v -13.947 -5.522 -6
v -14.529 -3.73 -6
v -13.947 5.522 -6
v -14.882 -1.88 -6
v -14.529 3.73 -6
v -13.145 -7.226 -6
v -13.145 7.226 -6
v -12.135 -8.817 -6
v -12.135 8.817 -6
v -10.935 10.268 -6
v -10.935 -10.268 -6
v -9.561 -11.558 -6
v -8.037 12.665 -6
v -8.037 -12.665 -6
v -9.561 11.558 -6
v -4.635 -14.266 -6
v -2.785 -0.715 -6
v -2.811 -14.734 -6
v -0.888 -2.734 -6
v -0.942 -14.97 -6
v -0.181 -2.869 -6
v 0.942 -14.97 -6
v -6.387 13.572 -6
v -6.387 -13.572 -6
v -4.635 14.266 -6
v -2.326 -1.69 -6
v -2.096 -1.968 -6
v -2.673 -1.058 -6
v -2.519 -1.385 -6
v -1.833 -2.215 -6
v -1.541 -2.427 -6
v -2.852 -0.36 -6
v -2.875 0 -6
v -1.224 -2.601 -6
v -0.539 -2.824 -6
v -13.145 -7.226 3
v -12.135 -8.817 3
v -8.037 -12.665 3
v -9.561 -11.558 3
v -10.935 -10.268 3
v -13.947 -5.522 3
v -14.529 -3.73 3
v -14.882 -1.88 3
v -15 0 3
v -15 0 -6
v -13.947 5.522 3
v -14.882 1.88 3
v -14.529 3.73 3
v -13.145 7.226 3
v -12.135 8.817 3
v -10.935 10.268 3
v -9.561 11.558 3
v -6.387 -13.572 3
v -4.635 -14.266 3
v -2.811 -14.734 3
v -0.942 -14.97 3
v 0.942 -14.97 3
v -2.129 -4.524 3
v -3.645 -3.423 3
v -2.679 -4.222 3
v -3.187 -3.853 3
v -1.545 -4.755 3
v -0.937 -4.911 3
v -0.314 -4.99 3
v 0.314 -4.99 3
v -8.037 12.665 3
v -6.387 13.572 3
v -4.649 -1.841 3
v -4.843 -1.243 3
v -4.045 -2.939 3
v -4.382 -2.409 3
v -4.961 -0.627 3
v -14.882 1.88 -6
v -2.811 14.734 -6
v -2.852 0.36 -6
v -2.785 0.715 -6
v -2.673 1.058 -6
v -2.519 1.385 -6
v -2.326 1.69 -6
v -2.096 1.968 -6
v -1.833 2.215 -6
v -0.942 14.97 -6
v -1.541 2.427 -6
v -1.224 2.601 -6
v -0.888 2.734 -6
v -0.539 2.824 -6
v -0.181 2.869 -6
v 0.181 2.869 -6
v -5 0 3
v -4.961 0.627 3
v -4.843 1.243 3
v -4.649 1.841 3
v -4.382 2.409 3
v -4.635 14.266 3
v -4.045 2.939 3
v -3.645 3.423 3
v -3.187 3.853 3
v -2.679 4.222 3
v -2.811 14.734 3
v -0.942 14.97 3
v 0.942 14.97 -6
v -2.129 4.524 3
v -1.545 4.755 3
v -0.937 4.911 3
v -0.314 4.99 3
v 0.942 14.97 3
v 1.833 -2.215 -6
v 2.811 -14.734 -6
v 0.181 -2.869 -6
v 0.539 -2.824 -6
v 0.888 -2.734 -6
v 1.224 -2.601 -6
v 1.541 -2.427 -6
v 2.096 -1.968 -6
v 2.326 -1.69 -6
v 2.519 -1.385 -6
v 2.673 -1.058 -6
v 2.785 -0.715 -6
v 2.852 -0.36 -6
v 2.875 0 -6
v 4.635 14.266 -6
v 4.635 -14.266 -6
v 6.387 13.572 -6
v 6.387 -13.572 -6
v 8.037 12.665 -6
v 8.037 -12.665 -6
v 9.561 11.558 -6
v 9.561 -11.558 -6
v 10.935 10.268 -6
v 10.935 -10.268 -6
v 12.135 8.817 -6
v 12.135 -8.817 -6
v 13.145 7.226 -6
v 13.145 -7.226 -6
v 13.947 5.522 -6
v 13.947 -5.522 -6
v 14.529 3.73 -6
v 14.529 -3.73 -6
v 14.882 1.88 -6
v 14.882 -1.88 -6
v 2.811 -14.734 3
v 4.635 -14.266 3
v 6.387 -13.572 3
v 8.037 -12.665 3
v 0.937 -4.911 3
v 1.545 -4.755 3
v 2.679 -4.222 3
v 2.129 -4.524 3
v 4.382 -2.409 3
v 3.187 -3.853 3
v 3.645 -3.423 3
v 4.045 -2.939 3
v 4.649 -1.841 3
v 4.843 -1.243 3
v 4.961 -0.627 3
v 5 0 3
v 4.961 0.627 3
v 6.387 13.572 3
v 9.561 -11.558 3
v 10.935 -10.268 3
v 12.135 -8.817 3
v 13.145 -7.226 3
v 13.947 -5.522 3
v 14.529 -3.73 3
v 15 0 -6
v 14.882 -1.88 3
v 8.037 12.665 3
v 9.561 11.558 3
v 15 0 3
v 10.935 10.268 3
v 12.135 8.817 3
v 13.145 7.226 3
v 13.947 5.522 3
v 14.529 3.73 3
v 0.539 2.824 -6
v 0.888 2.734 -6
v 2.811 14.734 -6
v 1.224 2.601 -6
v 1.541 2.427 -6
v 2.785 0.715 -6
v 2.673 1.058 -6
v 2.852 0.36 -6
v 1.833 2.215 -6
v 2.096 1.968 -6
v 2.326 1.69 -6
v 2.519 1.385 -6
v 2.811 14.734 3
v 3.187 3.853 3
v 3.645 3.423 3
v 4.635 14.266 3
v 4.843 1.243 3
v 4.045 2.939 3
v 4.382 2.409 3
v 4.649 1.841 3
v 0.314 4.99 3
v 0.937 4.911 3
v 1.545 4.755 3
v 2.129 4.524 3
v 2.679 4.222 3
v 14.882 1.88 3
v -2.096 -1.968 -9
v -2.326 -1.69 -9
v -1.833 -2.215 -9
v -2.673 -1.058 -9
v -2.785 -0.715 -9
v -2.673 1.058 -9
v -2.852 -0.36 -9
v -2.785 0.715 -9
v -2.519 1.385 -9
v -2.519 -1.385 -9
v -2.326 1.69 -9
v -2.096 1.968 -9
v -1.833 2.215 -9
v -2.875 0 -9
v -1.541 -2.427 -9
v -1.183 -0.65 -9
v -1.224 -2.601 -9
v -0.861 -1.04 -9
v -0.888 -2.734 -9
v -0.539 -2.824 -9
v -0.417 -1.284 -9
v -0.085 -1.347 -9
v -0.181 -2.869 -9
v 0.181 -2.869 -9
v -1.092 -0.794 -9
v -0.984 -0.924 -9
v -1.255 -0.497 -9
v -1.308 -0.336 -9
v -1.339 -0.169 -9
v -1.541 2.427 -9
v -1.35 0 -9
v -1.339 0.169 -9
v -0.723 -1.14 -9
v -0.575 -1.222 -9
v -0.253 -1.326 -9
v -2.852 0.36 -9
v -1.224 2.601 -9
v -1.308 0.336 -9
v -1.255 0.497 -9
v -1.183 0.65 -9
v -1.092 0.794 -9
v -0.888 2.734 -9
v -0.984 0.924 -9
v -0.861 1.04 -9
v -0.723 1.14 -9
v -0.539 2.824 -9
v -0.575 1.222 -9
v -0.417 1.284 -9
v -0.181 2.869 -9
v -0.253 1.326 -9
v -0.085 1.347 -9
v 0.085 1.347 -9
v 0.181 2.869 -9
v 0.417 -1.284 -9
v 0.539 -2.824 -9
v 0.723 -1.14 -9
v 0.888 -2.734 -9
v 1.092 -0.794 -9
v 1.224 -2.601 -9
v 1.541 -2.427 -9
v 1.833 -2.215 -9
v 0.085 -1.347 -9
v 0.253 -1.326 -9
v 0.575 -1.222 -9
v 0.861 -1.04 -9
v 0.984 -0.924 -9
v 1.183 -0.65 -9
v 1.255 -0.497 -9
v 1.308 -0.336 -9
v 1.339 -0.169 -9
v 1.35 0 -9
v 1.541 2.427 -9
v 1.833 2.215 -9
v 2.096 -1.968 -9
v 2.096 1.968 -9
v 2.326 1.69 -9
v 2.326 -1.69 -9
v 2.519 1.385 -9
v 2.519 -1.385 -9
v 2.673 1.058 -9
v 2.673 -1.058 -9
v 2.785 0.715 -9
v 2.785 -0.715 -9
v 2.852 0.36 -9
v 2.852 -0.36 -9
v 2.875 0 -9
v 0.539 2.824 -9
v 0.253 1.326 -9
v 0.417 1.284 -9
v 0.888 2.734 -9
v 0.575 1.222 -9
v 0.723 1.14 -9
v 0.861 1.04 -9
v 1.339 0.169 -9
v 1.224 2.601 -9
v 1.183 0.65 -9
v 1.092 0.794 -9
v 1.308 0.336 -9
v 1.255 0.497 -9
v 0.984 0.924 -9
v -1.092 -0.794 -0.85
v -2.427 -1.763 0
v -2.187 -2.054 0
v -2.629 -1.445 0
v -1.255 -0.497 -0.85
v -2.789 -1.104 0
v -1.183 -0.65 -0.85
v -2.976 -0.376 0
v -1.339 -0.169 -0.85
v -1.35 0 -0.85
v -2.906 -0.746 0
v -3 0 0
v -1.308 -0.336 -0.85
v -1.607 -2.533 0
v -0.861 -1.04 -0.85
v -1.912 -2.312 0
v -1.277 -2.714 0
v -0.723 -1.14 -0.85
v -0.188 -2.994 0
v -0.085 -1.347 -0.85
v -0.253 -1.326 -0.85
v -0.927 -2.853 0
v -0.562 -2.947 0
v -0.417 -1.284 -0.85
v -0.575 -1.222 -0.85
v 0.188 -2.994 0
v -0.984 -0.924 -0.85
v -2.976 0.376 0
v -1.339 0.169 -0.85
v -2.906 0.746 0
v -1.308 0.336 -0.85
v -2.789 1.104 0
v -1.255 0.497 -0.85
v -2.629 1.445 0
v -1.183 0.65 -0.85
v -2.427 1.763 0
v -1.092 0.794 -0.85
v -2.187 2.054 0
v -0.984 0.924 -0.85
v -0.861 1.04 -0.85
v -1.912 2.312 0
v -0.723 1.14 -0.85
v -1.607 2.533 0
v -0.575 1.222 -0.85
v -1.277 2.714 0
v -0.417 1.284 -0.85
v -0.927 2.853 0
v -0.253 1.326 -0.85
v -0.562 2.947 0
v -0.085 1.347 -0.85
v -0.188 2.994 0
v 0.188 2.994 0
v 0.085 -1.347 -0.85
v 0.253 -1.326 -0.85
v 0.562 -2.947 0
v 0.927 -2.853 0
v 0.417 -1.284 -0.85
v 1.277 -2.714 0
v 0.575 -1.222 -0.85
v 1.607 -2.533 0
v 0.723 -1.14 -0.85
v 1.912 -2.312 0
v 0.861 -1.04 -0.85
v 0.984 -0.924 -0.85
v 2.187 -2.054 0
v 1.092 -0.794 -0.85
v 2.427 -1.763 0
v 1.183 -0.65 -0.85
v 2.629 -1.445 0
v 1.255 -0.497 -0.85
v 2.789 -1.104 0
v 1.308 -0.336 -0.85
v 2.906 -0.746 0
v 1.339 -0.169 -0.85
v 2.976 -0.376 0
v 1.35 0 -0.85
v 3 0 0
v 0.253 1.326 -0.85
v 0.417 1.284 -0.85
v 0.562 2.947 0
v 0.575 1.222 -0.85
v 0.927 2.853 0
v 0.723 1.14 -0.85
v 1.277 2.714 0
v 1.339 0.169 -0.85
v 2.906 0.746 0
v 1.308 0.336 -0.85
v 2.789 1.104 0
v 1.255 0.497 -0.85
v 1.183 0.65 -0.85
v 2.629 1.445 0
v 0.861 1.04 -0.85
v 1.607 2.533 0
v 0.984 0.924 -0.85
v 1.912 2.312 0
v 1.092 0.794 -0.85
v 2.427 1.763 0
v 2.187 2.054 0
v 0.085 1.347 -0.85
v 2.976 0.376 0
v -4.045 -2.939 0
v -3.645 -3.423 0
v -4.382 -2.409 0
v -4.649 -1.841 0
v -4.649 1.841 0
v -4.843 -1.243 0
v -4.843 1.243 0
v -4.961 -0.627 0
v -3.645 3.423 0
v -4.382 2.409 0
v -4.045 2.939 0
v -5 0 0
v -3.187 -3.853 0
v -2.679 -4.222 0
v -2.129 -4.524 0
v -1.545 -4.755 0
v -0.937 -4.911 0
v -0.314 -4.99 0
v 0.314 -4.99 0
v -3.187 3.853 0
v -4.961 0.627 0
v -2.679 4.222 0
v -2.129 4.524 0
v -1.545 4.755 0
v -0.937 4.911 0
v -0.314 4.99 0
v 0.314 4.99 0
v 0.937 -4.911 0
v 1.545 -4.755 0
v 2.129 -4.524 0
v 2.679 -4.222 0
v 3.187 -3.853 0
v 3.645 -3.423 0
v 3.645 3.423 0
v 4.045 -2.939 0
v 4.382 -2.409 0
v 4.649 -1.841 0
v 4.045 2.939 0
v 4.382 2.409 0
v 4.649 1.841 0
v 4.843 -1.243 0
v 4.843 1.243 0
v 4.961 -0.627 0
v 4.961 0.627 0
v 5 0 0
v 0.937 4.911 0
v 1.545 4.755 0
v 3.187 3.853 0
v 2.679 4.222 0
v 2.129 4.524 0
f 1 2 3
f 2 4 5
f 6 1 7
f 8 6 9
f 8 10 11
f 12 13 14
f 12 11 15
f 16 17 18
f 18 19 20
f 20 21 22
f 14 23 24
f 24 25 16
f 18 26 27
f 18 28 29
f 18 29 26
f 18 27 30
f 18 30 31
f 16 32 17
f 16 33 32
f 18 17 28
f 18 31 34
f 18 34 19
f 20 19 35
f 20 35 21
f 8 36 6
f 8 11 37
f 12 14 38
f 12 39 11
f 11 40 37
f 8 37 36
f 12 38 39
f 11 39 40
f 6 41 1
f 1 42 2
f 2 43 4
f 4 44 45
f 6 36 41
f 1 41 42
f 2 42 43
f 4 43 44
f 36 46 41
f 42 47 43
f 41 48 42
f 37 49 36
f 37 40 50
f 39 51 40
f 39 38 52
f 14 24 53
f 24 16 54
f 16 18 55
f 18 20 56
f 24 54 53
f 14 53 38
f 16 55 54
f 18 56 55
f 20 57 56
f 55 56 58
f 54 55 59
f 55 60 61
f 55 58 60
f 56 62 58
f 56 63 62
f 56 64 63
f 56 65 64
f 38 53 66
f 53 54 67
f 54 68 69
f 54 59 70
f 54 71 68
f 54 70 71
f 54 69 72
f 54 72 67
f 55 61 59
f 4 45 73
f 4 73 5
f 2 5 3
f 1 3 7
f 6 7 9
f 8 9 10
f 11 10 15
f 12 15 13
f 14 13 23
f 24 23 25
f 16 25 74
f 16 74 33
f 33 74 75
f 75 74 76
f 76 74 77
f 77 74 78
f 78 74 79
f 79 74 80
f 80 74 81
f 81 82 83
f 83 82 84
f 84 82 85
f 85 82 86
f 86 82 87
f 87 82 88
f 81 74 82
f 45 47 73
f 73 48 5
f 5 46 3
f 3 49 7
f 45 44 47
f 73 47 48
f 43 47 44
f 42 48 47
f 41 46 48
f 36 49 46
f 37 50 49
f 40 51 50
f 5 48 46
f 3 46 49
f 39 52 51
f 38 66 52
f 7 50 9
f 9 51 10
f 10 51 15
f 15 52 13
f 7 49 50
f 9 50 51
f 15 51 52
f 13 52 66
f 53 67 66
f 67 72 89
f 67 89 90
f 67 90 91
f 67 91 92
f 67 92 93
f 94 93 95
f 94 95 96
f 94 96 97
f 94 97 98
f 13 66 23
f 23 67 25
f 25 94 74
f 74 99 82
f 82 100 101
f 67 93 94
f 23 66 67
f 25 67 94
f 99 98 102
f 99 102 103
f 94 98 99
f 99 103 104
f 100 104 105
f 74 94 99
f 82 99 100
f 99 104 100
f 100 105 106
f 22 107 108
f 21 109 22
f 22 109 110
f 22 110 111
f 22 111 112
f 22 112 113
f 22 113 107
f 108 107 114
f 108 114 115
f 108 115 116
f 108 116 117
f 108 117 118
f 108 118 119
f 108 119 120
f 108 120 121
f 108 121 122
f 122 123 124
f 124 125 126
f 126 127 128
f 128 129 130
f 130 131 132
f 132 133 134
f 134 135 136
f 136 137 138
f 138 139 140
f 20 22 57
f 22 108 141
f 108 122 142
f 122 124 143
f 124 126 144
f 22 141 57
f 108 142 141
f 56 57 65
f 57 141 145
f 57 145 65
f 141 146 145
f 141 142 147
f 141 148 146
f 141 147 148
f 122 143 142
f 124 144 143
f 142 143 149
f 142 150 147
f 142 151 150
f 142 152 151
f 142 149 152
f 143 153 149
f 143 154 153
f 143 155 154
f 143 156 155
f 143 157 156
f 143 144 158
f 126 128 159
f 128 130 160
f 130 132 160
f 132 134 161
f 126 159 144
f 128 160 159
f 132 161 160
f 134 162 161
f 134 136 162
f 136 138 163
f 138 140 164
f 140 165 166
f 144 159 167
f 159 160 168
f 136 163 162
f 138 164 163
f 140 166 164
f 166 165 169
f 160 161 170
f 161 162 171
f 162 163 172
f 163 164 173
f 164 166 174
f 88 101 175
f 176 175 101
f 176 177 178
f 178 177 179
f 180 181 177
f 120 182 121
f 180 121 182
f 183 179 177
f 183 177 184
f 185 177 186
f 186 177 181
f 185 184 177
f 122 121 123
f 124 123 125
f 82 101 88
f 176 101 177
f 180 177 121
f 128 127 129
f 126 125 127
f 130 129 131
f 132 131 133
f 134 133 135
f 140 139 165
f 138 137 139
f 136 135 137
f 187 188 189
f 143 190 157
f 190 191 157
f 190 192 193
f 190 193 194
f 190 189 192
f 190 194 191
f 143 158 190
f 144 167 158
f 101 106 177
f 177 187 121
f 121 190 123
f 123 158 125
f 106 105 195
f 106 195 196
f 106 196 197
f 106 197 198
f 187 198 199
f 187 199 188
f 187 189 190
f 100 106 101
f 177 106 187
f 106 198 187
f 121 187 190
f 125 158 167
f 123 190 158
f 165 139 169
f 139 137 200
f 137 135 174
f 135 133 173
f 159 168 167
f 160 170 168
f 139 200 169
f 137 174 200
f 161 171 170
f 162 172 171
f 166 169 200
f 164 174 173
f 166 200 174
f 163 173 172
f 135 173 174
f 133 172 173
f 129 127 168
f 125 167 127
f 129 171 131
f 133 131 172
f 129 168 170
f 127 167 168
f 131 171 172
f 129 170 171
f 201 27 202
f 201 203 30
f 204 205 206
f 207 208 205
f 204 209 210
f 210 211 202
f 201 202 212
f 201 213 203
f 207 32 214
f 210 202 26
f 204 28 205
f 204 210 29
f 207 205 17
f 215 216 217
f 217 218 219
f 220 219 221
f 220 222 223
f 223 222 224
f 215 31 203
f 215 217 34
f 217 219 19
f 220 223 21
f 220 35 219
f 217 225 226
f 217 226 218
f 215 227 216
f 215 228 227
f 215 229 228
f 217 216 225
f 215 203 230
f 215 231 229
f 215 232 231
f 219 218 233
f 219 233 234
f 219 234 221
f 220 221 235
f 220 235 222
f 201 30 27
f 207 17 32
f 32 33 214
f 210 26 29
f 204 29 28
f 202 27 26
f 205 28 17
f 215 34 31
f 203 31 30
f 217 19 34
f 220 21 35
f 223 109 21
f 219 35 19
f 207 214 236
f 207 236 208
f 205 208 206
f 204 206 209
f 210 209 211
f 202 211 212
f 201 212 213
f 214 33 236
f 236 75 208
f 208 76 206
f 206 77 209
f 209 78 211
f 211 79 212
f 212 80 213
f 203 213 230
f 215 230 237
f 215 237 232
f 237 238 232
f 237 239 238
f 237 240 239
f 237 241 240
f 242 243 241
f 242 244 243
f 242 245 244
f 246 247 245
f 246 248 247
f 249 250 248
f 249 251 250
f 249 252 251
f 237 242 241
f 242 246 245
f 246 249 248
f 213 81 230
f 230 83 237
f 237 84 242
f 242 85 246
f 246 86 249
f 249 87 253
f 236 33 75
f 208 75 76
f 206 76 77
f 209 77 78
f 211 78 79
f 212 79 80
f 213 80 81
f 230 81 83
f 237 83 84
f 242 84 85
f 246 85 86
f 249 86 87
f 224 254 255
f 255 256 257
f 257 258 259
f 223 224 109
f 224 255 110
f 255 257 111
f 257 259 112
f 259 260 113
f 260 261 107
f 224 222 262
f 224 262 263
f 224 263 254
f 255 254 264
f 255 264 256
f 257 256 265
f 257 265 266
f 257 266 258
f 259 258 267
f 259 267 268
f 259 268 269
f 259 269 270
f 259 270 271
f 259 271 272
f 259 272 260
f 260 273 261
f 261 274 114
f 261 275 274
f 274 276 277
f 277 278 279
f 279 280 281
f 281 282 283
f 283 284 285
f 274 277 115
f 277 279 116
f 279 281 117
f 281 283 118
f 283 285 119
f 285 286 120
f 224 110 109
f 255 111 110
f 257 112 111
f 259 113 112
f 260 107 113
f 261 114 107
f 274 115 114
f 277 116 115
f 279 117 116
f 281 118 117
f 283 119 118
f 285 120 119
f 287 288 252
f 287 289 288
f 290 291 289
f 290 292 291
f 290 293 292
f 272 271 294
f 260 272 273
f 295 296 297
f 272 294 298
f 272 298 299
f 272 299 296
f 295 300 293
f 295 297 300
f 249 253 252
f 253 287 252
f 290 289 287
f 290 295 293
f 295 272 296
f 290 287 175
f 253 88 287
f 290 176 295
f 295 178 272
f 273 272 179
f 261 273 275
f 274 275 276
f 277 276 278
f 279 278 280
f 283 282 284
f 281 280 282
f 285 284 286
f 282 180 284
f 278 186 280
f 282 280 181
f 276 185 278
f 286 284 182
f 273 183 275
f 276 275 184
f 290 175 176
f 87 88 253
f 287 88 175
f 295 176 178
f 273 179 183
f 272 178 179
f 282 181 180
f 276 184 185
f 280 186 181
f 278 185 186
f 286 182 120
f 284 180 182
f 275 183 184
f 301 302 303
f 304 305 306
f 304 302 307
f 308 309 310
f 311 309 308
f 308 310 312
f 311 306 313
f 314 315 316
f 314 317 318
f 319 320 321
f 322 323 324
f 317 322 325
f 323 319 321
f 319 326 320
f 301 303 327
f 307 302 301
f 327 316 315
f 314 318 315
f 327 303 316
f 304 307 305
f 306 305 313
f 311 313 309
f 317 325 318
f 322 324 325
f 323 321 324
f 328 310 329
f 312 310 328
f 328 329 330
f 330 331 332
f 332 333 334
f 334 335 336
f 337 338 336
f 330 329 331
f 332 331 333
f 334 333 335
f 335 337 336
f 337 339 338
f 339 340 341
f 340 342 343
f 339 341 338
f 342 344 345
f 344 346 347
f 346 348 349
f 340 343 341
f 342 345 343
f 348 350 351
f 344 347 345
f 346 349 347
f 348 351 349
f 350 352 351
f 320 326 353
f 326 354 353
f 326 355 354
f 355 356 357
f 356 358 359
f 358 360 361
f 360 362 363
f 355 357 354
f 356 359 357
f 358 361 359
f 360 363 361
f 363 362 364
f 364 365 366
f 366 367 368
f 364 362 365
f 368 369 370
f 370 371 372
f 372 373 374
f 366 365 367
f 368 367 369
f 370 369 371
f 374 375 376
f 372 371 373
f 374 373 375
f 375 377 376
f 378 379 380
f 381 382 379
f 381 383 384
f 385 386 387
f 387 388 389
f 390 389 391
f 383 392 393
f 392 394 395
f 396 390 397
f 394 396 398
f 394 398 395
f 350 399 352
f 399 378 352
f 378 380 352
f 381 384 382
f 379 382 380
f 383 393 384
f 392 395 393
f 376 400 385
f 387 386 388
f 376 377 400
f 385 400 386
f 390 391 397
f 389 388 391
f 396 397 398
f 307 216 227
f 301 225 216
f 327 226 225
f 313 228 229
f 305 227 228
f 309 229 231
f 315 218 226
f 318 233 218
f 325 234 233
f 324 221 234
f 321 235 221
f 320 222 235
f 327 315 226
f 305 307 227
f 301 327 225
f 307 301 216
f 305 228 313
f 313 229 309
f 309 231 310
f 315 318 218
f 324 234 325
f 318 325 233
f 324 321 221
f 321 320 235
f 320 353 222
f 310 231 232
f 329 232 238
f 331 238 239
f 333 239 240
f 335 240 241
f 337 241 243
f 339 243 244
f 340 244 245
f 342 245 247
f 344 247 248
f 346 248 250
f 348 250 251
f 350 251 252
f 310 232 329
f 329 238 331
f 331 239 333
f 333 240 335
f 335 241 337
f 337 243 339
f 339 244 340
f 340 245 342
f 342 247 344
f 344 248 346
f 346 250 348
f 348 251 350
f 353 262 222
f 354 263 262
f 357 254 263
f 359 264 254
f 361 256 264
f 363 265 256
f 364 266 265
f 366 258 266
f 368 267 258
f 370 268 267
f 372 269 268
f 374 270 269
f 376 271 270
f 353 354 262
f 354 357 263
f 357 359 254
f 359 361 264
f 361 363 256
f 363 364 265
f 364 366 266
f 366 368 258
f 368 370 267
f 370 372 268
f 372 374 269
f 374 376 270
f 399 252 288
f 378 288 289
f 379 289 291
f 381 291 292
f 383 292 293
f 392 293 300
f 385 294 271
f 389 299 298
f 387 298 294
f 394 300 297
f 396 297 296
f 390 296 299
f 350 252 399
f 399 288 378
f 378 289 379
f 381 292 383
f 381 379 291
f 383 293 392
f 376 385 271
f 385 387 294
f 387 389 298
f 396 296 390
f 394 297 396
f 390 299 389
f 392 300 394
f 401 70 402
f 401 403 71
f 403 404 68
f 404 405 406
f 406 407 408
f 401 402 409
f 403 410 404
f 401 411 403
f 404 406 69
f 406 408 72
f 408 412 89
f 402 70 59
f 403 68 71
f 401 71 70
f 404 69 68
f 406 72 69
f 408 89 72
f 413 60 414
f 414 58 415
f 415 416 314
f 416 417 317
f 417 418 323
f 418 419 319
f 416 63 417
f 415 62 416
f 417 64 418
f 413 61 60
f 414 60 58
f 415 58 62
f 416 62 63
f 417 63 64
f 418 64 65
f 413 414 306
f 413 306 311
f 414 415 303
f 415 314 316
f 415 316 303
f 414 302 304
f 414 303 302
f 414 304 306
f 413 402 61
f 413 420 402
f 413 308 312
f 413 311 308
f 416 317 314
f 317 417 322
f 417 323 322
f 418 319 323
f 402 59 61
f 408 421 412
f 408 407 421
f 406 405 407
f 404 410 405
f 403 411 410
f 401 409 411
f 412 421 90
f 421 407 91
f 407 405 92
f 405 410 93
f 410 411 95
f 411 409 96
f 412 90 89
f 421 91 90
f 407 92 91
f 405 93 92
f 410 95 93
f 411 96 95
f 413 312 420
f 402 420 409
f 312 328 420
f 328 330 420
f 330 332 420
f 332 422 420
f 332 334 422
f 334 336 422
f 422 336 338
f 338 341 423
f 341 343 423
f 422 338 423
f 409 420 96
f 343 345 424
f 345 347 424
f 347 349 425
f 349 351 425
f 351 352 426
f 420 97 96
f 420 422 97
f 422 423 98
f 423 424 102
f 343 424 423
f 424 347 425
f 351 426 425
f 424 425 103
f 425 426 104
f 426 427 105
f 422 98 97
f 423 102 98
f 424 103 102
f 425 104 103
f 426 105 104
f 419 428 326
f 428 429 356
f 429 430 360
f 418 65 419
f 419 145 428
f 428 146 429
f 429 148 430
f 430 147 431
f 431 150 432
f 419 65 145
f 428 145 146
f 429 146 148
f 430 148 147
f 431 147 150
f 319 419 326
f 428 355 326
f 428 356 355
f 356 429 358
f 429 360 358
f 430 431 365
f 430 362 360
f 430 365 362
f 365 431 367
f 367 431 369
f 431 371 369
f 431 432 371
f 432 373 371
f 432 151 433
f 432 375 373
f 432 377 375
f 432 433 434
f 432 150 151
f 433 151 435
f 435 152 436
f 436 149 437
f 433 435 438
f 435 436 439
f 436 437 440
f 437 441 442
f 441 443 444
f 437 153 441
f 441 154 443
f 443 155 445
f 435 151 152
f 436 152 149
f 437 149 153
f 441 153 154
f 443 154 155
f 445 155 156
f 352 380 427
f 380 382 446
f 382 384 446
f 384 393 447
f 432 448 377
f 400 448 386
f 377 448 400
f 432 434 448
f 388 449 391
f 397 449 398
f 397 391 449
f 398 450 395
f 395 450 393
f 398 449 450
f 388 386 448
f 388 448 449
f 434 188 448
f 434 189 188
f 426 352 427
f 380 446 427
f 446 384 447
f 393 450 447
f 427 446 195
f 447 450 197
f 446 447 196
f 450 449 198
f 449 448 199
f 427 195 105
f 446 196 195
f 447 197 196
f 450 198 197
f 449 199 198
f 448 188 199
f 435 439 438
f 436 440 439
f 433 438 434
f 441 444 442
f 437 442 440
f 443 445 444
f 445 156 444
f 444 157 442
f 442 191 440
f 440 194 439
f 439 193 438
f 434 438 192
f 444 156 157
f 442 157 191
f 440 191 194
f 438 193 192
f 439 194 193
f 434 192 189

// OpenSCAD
$fn = 50;

difference() {
	union() {
		translate(v = [0, 0, -6.0]) {
			cylinder(h = 9, r = 15.0);
		}
		#translate(v = [0, 0, -9.0]) {
			cylinder(h = 9, r = 2.875);
		}
	}
	union() {
		translate(v = [0, 0, 0]) {
			rotate(a = [0, 0, 0]) {
				difference() {
					union() {
						translate(v = [0, 0, -9.0]) {
							cylinder(h = 9, r = 1.0);
						}
						translate(v = [0, 0, -0.85]) {
							cylinder(h = 0.85, r1 = 1.35, r2 = 3.0);
						}
						translate(v = [0, 0, -9.0]) {
							cylinder(h = 9, r = 1.35);
						}
						translate(v = [0, 0, -9.0]) {
							cylinder(h = 9, r = 1.0);
						}
					}
					union();
				}
			}
		}
		#cylinder(h = 3, r = 5.0);
	}
}
